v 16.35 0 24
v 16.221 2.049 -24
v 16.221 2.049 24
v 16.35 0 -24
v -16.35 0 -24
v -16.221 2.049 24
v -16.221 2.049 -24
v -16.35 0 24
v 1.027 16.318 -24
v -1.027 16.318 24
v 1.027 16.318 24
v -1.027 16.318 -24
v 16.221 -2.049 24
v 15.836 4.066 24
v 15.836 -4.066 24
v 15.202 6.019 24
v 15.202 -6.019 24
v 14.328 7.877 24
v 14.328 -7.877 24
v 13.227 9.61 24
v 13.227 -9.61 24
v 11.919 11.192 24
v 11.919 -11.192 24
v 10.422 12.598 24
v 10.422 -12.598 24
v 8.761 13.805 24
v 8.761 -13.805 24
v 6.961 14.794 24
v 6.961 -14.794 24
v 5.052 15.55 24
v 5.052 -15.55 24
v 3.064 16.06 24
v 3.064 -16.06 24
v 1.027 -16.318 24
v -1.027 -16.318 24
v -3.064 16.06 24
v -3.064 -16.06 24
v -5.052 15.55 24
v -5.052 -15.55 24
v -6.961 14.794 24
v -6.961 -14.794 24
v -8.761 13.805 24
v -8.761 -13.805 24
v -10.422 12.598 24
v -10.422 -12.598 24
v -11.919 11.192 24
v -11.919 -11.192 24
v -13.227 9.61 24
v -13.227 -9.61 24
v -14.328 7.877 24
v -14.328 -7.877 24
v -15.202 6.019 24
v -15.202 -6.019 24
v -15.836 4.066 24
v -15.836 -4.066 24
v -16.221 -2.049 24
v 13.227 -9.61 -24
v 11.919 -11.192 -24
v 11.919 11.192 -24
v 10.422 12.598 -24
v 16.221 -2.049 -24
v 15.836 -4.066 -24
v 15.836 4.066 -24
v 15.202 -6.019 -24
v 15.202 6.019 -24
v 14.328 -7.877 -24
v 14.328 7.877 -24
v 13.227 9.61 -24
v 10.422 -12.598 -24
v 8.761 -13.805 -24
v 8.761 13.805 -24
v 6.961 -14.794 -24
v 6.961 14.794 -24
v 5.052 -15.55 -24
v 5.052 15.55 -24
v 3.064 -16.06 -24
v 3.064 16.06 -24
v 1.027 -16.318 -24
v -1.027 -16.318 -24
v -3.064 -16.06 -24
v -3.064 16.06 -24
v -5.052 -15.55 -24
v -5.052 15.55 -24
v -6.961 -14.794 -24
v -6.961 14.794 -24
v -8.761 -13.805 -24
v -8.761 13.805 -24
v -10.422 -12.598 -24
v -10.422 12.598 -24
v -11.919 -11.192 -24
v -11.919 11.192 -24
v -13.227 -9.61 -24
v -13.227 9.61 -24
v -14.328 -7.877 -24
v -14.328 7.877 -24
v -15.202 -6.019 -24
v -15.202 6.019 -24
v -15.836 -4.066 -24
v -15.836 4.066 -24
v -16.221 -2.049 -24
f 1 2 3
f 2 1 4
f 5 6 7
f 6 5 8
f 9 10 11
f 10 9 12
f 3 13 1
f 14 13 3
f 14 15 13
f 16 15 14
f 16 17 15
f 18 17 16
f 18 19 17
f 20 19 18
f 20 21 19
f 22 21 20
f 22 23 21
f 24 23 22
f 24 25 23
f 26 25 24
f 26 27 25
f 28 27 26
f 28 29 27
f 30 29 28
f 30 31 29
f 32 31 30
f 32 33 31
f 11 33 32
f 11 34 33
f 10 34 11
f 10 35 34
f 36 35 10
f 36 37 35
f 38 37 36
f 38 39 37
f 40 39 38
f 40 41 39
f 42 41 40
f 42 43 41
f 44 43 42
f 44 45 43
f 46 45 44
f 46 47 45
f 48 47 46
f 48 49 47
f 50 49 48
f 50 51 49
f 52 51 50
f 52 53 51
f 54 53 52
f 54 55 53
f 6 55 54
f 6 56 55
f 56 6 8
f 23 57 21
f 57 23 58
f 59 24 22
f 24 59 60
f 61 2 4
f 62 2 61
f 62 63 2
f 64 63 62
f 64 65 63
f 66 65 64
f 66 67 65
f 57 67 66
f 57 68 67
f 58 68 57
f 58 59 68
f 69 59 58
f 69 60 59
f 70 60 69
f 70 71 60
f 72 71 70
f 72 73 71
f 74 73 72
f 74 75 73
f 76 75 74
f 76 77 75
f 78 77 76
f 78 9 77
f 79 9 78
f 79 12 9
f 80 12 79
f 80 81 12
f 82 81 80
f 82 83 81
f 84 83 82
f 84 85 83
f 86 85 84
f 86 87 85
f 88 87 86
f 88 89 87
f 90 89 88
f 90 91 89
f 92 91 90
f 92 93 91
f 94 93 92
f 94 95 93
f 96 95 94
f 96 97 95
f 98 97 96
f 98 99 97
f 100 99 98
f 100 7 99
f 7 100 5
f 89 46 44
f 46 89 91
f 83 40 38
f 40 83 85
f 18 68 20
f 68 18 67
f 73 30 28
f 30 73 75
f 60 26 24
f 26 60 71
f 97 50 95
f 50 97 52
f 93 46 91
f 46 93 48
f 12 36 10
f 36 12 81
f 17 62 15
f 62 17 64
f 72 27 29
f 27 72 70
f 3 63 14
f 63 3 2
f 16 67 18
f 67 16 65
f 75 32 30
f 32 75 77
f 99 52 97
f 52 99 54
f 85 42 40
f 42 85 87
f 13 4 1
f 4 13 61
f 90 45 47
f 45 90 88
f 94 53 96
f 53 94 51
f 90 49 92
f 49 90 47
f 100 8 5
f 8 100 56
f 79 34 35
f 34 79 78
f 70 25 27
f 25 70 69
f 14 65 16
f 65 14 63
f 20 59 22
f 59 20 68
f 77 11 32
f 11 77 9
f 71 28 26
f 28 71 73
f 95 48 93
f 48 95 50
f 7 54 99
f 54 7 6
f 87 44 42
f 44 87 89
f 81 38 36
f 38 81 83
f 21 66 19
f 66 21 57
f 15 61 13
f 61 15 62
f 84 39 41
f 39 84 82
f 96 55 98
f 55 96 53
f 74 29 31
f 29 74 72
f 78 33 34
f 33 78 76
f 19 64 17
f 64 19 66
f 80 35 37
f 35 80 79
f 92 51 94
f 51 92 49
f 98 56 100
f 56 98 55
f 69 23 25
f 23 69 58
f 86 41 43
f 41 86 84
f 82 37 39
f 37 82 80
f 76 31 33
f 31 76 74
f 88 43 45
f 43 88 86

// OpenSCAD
$fn = 50;


difference() {
	union() {
		translate(v = [0, 0, -24.0000000000]) {
			cylinder(h = 48, r = 16.3500000000);
		}
	}
	union() {
		translate(v = [0, 0, -100.0000000000]) {
			cylinder(h = 200, r = 0);
		}
	}
}
